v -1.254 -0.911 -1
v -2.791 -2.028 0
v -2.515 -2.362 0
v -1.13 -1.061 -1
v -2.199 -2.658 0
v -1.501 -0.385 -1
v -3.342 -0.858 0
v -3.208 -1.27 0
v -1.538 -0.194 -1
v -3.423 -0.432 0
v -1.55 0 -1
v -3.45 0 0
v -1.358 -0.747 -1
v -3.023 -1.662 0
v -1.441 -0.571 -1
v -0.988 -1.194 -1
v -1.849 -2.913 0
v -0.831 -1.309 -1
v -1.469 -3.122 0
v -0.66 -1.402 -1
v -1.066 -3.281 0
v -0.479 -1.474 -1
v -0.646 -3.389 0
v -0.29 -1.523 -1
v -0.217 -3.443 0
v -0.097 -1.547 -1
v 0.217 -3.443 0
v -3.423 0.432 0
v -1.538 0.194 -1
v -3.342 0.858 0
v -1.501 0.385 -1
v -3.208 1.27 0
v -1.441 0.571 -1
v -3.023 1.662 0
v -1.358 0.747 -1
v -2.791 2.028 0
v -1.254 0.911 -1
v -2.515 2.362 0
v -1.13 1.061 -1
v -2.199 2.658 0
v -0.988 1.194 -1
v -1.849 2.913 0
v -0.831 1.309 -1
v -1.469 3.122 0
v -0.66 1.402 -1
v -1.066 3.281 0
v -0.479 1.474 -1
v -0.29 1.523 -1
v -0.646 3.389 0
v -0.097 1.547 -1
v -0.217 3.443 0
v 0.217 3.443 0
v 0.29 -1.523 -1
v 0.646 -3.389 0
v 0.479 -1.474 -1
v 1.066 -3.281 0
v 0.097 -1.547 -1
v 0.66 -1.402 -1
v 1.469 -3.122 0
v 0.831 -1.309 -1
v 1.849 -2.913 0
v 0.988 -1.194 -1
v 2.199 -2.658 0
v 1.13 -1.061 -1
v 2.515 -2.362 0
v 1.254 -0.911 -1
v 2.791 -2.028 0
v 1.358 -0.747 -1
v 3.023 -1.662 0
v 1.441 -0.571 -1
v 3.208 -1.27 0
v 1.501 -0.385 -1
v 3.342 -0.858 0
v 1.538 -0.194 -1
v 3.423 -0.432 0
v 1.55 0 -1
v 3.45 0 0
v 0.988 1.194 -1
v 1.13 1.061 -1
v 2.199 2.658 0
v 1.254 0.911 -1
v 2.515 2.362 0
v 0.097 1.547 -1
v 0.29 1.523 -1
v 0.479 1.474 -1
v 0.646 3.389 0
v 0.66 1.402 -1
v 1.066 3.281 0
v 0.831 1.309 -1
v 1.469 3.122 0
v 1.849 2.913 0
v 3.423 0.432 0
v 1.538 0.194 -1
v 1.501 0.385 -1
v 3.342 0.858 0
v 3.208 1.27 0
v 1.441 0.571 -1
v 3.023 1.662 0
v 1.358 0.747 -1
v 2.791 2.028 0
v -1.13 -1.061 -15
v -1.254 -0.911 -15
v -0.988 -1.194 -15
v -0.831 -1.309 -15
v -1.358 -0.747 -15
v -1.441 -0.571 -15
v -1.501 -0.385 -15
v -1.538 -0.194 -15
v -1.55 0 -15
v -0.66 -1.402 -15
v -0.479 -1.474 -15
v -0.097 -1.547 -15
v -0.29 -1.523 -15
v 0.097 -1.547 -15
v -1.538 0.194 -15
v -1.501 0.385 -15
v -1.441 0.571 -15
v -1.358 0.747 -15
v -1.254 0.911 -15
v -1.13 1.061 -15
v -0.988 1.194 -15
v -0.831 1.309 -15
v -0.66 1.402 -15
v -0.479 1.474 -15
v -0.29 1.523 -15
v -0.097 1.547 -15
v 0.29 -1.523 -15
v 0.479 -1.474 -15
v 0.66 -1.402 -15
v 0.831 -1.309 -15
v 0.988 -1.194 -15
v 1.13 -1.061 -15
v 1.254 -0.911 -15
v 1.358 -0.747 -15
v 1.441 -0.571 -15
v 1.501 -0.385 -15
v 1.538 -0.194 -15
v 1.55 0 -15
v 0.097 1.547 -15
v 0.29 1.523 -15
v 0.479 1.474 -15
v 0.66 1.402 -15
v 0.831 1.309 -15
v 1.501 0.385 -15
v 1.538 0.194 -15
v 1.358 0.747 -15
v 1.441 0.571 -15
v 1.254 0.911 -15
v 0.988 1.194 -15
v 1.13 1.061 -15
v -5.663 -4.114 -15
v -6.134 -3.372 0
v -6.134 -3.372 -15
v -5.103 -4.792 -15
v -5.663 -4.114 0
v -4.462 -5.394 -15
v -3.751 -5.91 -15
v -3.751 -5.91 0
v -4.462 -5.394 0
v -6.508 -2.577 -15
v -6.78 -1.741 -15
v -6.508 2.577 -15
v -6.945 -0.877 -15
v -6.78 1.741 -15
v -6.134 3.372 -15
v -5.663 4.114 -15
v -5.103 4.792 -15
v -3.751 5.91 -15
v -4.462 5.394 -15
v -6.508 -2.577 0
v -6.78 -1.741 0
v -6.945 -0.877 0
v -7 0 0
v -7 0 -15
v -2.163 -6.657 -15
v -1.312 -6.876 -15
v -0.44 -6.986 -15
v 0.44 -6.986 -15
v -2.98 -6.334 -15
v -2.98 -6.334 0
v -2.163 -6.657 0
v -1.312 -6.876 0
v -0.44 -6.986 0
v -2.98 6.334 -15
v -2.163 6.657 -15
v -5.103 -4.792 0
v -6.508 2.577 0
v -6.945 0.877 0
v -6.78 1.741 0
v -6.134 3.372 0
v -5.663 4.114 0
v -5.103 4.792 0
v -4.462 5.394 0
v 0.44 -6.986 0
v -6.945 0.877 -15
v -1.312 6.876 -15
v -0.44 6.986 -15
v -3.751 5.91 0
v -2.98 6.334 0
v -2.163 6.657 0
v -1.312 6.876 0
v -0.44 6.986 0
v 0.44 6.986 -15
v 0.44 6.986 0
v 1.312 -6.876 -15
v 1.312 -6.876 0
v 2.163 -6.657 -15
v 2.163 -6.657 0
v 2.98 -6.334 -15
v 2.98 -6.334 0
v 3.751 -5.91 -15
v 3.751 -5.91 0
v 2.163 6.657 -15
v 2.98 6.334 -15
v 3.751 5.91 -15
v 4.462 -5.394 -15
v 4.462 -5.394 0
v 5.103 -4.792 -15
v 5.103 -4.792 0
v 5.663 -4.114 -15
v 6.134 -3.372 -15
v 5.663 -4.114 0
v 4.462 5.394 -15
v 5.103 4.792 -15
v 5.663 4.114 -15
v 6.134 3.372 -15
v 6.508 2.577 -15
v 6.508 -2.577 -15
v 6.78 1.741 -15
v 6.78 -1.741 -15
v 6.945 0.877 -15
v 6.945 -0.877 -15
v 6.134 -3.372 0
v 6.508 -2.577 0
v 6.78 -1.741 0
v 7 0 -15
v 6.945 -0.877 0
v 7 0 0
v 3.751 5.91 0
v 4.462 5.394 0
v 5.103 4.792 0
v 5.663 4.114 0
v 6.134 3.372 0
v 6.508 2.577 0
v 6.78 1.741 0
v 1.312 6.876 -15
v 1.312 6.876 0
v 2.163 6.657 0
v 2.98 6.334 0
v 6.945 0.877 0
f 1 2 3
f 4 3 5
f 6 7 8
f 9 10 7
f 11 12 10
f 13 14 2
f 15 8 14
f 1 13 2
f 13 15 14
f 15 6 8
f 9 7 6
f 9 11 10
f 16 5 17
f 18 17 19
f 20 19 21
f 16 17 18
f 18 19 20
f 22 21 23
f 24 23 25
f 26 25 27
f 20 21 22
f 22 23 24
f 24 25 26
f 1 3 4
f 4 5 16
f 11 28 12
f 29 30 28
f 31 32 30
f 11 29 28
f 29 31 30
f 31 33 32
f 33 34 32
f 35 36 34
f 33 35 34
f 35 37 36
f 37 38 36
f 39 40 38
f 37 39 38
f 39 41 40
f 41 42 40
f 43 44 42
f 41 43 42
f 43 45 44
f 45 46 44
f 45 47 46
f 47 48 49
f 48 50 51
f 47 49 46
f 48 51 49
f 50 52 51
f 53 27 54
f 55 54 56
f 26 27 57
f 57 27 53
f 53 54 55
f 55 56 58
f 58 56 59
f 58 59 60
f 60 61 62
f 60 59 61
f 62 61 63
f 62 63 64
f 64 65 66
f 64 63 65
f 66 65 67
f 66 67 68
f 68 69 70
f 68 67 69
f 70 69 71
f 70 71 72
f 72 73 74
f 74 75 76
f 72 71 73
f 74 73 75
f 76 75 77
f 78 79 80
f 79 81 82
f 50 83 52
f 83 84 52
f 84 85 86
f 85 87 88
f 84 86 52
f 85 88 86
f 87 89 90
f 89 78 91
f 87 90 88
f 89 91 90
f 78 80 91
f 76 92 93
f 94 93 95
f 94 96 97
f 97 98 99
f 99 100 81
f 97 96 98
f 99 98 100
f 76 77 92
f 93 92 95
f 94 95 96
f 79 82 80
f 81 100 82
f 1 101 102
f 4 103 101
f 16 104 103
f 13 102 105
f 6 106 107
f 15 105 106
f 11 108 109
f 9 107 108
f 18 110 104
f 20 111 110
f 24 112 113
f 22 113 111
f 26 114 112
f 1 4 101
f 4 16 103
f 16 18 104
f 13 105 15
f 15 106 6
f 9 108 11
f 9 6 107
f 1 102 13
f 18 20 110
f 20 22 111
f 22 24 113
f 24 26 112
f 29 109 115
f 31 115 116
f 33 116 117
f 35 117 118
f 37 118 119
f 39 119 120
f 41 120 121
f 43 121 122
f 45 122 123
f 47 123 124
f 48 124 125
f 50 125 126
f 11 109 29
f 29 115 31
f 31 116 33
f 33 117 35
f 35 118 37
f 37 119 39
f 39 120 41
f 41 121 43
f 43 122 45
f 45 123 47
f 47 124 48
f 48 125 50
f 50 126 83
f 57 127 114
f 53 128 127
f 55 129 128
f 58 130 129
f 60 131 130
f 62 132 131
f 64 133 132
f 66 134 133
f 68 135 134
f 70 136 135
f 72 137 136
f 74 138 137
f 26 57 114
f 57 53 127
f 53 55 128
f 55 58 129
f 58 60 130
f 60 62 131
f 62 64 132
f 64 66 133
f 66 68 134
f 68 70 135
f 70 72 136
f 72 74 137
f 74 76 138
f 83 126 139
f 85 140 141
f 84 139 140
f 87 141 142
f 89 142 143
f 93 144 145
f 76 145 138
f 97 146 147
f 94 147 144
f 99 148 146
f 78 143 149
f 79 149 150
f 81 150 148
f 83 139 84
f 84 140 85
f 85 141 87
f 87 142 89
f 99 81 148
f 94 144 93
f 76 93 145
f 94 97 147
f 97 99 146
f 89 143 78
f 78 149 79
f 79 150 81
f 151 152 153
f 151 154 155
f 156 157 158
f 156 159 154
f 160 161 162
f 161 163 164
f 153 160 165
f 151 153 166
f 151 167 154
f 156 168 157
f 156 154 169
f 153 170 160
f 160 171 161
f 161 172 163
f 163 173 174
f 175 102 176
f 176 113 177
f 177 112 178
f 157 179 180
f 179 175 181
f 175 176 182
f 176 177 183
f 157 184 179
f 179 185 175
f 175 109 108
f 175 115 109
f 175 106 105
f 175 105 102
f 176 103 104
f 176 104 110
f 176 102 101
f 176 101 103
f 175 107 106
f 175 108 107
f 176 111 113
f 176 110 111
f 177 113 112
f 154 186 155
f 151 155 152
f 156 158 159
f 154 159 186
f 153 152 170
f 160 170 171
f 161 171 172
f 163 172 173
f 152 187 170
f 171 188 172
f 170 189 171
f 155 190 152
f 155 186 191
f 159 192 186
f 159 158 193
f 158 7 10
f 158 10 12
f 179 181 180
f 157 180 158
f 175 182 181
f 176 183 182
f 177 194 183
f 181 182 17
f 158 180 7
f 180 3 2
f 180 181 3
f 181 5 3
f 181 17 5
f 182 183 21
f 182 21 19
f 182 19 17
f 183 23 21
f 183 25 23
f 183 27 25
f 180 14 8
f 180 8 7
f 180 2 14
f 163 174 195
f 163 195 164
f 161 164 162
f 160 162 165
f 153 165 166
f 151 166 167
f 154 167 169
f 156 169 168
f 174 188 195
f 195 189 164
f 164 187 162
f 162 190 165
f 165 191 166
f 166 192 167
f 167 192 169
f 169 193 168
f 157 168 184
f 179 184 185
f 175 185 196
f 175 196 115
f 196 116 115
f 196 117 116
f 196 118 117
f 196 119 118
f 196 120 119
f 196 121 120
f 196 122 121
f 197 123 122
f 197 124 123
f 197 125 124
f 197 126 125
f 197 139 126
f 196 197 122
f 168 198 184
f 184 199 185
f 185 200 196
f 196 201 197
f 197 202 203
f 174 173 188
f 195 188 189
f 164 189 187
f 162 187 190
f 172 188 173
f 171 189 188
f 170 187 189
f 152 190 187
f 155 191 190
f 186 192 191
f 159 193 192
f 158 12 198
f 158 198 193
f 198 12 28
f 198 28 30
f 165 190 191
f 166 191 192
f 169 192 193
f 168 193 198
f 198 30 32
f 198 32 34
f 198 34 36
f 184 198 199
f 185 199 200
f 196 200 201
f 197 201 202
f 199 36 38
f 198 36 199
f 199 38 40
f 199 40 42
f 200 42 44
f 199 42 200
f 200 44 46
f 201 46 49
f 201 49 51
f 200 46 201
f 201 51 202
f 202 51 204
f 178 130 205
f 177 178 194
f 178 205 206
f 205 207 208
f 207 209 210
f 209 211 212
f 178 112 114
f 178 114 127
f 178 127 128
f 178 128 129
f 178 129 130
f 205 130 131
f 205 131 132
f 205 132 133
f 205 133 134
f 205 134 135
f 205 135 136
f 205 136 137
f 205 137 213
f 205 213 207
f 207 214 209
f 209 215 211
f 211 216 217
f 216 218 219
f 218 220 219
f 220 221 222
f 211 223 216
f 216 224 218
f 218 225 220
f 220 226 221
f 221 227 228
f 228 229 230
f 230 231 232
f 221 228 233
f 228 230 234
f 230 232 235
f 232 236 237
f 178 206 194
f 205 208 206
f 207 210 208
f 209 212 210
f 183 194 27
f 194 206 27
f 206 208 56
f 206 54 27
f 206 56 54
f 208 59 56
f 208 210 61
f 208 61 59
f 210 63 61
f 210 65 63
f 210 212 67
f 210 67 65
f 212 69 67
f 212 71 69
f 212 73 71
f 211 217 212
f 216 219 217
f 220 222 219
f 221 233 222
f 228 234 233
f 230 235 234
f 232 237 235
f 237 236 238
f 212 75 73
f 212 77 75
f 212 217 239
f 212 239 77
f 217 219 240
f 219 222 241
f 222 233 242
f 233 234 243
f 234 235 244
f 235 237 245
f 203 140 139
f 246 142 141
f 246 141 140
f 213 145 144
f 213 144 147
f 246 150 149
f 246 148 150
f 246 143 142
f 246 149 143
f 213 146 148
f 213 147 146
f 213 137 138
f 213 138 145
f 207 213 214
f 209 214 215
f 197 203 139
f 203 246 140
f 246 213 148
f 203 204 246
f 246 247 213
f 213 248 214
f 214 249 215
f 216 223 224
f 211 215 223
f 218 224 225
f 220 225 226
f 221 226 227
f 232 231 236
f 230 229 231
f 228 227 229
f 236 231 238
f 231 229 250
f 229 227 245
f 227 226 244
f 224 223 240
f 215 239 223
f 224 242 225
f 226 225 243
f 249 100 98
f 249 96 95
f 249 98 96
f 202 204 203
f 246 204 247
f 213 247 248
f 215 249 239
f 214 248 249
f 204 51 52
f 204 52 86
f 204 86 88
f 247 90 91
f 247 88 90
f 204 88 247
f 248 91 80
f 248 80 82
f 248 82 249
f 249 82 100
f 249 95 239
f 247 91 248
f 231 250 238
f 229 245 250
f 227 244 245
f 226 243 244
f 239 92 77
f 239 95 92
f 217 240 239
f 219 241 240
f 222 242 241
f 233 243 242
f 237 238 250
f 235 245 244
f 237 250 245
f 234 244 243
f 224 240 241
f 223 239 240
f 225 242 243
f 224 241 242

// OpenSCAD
$fn = 50;

difference() {
	union() {
		translate(v = [0, 0, -15.0]) {
			cylinder(h = 15, r = 7.0);
		}
	}
	union() {
		translate(v = [0, 0, 0]) {
			rotate(a = [0, 0, 0]) {
				difference() {
					union() {
						translate(v = [0, 0, -18.0]) {
							cylinder(h = 18, r = 1.25);
						}
						translate(v = [0, 0, -1.0]) {
							cylinder(h = 1.0, r1 = 1.55, r2 = 3.45);
						}
						translate(v = [0, 0, -18.0]) {
							cylinder(h = 18, r = 1.55);
						}
						translate(v = [0, 0, -18.0]) {
							cylinder(h = 18, r = 1.25);
						}
					}
					union();
				}
			}
		}
	}
}
